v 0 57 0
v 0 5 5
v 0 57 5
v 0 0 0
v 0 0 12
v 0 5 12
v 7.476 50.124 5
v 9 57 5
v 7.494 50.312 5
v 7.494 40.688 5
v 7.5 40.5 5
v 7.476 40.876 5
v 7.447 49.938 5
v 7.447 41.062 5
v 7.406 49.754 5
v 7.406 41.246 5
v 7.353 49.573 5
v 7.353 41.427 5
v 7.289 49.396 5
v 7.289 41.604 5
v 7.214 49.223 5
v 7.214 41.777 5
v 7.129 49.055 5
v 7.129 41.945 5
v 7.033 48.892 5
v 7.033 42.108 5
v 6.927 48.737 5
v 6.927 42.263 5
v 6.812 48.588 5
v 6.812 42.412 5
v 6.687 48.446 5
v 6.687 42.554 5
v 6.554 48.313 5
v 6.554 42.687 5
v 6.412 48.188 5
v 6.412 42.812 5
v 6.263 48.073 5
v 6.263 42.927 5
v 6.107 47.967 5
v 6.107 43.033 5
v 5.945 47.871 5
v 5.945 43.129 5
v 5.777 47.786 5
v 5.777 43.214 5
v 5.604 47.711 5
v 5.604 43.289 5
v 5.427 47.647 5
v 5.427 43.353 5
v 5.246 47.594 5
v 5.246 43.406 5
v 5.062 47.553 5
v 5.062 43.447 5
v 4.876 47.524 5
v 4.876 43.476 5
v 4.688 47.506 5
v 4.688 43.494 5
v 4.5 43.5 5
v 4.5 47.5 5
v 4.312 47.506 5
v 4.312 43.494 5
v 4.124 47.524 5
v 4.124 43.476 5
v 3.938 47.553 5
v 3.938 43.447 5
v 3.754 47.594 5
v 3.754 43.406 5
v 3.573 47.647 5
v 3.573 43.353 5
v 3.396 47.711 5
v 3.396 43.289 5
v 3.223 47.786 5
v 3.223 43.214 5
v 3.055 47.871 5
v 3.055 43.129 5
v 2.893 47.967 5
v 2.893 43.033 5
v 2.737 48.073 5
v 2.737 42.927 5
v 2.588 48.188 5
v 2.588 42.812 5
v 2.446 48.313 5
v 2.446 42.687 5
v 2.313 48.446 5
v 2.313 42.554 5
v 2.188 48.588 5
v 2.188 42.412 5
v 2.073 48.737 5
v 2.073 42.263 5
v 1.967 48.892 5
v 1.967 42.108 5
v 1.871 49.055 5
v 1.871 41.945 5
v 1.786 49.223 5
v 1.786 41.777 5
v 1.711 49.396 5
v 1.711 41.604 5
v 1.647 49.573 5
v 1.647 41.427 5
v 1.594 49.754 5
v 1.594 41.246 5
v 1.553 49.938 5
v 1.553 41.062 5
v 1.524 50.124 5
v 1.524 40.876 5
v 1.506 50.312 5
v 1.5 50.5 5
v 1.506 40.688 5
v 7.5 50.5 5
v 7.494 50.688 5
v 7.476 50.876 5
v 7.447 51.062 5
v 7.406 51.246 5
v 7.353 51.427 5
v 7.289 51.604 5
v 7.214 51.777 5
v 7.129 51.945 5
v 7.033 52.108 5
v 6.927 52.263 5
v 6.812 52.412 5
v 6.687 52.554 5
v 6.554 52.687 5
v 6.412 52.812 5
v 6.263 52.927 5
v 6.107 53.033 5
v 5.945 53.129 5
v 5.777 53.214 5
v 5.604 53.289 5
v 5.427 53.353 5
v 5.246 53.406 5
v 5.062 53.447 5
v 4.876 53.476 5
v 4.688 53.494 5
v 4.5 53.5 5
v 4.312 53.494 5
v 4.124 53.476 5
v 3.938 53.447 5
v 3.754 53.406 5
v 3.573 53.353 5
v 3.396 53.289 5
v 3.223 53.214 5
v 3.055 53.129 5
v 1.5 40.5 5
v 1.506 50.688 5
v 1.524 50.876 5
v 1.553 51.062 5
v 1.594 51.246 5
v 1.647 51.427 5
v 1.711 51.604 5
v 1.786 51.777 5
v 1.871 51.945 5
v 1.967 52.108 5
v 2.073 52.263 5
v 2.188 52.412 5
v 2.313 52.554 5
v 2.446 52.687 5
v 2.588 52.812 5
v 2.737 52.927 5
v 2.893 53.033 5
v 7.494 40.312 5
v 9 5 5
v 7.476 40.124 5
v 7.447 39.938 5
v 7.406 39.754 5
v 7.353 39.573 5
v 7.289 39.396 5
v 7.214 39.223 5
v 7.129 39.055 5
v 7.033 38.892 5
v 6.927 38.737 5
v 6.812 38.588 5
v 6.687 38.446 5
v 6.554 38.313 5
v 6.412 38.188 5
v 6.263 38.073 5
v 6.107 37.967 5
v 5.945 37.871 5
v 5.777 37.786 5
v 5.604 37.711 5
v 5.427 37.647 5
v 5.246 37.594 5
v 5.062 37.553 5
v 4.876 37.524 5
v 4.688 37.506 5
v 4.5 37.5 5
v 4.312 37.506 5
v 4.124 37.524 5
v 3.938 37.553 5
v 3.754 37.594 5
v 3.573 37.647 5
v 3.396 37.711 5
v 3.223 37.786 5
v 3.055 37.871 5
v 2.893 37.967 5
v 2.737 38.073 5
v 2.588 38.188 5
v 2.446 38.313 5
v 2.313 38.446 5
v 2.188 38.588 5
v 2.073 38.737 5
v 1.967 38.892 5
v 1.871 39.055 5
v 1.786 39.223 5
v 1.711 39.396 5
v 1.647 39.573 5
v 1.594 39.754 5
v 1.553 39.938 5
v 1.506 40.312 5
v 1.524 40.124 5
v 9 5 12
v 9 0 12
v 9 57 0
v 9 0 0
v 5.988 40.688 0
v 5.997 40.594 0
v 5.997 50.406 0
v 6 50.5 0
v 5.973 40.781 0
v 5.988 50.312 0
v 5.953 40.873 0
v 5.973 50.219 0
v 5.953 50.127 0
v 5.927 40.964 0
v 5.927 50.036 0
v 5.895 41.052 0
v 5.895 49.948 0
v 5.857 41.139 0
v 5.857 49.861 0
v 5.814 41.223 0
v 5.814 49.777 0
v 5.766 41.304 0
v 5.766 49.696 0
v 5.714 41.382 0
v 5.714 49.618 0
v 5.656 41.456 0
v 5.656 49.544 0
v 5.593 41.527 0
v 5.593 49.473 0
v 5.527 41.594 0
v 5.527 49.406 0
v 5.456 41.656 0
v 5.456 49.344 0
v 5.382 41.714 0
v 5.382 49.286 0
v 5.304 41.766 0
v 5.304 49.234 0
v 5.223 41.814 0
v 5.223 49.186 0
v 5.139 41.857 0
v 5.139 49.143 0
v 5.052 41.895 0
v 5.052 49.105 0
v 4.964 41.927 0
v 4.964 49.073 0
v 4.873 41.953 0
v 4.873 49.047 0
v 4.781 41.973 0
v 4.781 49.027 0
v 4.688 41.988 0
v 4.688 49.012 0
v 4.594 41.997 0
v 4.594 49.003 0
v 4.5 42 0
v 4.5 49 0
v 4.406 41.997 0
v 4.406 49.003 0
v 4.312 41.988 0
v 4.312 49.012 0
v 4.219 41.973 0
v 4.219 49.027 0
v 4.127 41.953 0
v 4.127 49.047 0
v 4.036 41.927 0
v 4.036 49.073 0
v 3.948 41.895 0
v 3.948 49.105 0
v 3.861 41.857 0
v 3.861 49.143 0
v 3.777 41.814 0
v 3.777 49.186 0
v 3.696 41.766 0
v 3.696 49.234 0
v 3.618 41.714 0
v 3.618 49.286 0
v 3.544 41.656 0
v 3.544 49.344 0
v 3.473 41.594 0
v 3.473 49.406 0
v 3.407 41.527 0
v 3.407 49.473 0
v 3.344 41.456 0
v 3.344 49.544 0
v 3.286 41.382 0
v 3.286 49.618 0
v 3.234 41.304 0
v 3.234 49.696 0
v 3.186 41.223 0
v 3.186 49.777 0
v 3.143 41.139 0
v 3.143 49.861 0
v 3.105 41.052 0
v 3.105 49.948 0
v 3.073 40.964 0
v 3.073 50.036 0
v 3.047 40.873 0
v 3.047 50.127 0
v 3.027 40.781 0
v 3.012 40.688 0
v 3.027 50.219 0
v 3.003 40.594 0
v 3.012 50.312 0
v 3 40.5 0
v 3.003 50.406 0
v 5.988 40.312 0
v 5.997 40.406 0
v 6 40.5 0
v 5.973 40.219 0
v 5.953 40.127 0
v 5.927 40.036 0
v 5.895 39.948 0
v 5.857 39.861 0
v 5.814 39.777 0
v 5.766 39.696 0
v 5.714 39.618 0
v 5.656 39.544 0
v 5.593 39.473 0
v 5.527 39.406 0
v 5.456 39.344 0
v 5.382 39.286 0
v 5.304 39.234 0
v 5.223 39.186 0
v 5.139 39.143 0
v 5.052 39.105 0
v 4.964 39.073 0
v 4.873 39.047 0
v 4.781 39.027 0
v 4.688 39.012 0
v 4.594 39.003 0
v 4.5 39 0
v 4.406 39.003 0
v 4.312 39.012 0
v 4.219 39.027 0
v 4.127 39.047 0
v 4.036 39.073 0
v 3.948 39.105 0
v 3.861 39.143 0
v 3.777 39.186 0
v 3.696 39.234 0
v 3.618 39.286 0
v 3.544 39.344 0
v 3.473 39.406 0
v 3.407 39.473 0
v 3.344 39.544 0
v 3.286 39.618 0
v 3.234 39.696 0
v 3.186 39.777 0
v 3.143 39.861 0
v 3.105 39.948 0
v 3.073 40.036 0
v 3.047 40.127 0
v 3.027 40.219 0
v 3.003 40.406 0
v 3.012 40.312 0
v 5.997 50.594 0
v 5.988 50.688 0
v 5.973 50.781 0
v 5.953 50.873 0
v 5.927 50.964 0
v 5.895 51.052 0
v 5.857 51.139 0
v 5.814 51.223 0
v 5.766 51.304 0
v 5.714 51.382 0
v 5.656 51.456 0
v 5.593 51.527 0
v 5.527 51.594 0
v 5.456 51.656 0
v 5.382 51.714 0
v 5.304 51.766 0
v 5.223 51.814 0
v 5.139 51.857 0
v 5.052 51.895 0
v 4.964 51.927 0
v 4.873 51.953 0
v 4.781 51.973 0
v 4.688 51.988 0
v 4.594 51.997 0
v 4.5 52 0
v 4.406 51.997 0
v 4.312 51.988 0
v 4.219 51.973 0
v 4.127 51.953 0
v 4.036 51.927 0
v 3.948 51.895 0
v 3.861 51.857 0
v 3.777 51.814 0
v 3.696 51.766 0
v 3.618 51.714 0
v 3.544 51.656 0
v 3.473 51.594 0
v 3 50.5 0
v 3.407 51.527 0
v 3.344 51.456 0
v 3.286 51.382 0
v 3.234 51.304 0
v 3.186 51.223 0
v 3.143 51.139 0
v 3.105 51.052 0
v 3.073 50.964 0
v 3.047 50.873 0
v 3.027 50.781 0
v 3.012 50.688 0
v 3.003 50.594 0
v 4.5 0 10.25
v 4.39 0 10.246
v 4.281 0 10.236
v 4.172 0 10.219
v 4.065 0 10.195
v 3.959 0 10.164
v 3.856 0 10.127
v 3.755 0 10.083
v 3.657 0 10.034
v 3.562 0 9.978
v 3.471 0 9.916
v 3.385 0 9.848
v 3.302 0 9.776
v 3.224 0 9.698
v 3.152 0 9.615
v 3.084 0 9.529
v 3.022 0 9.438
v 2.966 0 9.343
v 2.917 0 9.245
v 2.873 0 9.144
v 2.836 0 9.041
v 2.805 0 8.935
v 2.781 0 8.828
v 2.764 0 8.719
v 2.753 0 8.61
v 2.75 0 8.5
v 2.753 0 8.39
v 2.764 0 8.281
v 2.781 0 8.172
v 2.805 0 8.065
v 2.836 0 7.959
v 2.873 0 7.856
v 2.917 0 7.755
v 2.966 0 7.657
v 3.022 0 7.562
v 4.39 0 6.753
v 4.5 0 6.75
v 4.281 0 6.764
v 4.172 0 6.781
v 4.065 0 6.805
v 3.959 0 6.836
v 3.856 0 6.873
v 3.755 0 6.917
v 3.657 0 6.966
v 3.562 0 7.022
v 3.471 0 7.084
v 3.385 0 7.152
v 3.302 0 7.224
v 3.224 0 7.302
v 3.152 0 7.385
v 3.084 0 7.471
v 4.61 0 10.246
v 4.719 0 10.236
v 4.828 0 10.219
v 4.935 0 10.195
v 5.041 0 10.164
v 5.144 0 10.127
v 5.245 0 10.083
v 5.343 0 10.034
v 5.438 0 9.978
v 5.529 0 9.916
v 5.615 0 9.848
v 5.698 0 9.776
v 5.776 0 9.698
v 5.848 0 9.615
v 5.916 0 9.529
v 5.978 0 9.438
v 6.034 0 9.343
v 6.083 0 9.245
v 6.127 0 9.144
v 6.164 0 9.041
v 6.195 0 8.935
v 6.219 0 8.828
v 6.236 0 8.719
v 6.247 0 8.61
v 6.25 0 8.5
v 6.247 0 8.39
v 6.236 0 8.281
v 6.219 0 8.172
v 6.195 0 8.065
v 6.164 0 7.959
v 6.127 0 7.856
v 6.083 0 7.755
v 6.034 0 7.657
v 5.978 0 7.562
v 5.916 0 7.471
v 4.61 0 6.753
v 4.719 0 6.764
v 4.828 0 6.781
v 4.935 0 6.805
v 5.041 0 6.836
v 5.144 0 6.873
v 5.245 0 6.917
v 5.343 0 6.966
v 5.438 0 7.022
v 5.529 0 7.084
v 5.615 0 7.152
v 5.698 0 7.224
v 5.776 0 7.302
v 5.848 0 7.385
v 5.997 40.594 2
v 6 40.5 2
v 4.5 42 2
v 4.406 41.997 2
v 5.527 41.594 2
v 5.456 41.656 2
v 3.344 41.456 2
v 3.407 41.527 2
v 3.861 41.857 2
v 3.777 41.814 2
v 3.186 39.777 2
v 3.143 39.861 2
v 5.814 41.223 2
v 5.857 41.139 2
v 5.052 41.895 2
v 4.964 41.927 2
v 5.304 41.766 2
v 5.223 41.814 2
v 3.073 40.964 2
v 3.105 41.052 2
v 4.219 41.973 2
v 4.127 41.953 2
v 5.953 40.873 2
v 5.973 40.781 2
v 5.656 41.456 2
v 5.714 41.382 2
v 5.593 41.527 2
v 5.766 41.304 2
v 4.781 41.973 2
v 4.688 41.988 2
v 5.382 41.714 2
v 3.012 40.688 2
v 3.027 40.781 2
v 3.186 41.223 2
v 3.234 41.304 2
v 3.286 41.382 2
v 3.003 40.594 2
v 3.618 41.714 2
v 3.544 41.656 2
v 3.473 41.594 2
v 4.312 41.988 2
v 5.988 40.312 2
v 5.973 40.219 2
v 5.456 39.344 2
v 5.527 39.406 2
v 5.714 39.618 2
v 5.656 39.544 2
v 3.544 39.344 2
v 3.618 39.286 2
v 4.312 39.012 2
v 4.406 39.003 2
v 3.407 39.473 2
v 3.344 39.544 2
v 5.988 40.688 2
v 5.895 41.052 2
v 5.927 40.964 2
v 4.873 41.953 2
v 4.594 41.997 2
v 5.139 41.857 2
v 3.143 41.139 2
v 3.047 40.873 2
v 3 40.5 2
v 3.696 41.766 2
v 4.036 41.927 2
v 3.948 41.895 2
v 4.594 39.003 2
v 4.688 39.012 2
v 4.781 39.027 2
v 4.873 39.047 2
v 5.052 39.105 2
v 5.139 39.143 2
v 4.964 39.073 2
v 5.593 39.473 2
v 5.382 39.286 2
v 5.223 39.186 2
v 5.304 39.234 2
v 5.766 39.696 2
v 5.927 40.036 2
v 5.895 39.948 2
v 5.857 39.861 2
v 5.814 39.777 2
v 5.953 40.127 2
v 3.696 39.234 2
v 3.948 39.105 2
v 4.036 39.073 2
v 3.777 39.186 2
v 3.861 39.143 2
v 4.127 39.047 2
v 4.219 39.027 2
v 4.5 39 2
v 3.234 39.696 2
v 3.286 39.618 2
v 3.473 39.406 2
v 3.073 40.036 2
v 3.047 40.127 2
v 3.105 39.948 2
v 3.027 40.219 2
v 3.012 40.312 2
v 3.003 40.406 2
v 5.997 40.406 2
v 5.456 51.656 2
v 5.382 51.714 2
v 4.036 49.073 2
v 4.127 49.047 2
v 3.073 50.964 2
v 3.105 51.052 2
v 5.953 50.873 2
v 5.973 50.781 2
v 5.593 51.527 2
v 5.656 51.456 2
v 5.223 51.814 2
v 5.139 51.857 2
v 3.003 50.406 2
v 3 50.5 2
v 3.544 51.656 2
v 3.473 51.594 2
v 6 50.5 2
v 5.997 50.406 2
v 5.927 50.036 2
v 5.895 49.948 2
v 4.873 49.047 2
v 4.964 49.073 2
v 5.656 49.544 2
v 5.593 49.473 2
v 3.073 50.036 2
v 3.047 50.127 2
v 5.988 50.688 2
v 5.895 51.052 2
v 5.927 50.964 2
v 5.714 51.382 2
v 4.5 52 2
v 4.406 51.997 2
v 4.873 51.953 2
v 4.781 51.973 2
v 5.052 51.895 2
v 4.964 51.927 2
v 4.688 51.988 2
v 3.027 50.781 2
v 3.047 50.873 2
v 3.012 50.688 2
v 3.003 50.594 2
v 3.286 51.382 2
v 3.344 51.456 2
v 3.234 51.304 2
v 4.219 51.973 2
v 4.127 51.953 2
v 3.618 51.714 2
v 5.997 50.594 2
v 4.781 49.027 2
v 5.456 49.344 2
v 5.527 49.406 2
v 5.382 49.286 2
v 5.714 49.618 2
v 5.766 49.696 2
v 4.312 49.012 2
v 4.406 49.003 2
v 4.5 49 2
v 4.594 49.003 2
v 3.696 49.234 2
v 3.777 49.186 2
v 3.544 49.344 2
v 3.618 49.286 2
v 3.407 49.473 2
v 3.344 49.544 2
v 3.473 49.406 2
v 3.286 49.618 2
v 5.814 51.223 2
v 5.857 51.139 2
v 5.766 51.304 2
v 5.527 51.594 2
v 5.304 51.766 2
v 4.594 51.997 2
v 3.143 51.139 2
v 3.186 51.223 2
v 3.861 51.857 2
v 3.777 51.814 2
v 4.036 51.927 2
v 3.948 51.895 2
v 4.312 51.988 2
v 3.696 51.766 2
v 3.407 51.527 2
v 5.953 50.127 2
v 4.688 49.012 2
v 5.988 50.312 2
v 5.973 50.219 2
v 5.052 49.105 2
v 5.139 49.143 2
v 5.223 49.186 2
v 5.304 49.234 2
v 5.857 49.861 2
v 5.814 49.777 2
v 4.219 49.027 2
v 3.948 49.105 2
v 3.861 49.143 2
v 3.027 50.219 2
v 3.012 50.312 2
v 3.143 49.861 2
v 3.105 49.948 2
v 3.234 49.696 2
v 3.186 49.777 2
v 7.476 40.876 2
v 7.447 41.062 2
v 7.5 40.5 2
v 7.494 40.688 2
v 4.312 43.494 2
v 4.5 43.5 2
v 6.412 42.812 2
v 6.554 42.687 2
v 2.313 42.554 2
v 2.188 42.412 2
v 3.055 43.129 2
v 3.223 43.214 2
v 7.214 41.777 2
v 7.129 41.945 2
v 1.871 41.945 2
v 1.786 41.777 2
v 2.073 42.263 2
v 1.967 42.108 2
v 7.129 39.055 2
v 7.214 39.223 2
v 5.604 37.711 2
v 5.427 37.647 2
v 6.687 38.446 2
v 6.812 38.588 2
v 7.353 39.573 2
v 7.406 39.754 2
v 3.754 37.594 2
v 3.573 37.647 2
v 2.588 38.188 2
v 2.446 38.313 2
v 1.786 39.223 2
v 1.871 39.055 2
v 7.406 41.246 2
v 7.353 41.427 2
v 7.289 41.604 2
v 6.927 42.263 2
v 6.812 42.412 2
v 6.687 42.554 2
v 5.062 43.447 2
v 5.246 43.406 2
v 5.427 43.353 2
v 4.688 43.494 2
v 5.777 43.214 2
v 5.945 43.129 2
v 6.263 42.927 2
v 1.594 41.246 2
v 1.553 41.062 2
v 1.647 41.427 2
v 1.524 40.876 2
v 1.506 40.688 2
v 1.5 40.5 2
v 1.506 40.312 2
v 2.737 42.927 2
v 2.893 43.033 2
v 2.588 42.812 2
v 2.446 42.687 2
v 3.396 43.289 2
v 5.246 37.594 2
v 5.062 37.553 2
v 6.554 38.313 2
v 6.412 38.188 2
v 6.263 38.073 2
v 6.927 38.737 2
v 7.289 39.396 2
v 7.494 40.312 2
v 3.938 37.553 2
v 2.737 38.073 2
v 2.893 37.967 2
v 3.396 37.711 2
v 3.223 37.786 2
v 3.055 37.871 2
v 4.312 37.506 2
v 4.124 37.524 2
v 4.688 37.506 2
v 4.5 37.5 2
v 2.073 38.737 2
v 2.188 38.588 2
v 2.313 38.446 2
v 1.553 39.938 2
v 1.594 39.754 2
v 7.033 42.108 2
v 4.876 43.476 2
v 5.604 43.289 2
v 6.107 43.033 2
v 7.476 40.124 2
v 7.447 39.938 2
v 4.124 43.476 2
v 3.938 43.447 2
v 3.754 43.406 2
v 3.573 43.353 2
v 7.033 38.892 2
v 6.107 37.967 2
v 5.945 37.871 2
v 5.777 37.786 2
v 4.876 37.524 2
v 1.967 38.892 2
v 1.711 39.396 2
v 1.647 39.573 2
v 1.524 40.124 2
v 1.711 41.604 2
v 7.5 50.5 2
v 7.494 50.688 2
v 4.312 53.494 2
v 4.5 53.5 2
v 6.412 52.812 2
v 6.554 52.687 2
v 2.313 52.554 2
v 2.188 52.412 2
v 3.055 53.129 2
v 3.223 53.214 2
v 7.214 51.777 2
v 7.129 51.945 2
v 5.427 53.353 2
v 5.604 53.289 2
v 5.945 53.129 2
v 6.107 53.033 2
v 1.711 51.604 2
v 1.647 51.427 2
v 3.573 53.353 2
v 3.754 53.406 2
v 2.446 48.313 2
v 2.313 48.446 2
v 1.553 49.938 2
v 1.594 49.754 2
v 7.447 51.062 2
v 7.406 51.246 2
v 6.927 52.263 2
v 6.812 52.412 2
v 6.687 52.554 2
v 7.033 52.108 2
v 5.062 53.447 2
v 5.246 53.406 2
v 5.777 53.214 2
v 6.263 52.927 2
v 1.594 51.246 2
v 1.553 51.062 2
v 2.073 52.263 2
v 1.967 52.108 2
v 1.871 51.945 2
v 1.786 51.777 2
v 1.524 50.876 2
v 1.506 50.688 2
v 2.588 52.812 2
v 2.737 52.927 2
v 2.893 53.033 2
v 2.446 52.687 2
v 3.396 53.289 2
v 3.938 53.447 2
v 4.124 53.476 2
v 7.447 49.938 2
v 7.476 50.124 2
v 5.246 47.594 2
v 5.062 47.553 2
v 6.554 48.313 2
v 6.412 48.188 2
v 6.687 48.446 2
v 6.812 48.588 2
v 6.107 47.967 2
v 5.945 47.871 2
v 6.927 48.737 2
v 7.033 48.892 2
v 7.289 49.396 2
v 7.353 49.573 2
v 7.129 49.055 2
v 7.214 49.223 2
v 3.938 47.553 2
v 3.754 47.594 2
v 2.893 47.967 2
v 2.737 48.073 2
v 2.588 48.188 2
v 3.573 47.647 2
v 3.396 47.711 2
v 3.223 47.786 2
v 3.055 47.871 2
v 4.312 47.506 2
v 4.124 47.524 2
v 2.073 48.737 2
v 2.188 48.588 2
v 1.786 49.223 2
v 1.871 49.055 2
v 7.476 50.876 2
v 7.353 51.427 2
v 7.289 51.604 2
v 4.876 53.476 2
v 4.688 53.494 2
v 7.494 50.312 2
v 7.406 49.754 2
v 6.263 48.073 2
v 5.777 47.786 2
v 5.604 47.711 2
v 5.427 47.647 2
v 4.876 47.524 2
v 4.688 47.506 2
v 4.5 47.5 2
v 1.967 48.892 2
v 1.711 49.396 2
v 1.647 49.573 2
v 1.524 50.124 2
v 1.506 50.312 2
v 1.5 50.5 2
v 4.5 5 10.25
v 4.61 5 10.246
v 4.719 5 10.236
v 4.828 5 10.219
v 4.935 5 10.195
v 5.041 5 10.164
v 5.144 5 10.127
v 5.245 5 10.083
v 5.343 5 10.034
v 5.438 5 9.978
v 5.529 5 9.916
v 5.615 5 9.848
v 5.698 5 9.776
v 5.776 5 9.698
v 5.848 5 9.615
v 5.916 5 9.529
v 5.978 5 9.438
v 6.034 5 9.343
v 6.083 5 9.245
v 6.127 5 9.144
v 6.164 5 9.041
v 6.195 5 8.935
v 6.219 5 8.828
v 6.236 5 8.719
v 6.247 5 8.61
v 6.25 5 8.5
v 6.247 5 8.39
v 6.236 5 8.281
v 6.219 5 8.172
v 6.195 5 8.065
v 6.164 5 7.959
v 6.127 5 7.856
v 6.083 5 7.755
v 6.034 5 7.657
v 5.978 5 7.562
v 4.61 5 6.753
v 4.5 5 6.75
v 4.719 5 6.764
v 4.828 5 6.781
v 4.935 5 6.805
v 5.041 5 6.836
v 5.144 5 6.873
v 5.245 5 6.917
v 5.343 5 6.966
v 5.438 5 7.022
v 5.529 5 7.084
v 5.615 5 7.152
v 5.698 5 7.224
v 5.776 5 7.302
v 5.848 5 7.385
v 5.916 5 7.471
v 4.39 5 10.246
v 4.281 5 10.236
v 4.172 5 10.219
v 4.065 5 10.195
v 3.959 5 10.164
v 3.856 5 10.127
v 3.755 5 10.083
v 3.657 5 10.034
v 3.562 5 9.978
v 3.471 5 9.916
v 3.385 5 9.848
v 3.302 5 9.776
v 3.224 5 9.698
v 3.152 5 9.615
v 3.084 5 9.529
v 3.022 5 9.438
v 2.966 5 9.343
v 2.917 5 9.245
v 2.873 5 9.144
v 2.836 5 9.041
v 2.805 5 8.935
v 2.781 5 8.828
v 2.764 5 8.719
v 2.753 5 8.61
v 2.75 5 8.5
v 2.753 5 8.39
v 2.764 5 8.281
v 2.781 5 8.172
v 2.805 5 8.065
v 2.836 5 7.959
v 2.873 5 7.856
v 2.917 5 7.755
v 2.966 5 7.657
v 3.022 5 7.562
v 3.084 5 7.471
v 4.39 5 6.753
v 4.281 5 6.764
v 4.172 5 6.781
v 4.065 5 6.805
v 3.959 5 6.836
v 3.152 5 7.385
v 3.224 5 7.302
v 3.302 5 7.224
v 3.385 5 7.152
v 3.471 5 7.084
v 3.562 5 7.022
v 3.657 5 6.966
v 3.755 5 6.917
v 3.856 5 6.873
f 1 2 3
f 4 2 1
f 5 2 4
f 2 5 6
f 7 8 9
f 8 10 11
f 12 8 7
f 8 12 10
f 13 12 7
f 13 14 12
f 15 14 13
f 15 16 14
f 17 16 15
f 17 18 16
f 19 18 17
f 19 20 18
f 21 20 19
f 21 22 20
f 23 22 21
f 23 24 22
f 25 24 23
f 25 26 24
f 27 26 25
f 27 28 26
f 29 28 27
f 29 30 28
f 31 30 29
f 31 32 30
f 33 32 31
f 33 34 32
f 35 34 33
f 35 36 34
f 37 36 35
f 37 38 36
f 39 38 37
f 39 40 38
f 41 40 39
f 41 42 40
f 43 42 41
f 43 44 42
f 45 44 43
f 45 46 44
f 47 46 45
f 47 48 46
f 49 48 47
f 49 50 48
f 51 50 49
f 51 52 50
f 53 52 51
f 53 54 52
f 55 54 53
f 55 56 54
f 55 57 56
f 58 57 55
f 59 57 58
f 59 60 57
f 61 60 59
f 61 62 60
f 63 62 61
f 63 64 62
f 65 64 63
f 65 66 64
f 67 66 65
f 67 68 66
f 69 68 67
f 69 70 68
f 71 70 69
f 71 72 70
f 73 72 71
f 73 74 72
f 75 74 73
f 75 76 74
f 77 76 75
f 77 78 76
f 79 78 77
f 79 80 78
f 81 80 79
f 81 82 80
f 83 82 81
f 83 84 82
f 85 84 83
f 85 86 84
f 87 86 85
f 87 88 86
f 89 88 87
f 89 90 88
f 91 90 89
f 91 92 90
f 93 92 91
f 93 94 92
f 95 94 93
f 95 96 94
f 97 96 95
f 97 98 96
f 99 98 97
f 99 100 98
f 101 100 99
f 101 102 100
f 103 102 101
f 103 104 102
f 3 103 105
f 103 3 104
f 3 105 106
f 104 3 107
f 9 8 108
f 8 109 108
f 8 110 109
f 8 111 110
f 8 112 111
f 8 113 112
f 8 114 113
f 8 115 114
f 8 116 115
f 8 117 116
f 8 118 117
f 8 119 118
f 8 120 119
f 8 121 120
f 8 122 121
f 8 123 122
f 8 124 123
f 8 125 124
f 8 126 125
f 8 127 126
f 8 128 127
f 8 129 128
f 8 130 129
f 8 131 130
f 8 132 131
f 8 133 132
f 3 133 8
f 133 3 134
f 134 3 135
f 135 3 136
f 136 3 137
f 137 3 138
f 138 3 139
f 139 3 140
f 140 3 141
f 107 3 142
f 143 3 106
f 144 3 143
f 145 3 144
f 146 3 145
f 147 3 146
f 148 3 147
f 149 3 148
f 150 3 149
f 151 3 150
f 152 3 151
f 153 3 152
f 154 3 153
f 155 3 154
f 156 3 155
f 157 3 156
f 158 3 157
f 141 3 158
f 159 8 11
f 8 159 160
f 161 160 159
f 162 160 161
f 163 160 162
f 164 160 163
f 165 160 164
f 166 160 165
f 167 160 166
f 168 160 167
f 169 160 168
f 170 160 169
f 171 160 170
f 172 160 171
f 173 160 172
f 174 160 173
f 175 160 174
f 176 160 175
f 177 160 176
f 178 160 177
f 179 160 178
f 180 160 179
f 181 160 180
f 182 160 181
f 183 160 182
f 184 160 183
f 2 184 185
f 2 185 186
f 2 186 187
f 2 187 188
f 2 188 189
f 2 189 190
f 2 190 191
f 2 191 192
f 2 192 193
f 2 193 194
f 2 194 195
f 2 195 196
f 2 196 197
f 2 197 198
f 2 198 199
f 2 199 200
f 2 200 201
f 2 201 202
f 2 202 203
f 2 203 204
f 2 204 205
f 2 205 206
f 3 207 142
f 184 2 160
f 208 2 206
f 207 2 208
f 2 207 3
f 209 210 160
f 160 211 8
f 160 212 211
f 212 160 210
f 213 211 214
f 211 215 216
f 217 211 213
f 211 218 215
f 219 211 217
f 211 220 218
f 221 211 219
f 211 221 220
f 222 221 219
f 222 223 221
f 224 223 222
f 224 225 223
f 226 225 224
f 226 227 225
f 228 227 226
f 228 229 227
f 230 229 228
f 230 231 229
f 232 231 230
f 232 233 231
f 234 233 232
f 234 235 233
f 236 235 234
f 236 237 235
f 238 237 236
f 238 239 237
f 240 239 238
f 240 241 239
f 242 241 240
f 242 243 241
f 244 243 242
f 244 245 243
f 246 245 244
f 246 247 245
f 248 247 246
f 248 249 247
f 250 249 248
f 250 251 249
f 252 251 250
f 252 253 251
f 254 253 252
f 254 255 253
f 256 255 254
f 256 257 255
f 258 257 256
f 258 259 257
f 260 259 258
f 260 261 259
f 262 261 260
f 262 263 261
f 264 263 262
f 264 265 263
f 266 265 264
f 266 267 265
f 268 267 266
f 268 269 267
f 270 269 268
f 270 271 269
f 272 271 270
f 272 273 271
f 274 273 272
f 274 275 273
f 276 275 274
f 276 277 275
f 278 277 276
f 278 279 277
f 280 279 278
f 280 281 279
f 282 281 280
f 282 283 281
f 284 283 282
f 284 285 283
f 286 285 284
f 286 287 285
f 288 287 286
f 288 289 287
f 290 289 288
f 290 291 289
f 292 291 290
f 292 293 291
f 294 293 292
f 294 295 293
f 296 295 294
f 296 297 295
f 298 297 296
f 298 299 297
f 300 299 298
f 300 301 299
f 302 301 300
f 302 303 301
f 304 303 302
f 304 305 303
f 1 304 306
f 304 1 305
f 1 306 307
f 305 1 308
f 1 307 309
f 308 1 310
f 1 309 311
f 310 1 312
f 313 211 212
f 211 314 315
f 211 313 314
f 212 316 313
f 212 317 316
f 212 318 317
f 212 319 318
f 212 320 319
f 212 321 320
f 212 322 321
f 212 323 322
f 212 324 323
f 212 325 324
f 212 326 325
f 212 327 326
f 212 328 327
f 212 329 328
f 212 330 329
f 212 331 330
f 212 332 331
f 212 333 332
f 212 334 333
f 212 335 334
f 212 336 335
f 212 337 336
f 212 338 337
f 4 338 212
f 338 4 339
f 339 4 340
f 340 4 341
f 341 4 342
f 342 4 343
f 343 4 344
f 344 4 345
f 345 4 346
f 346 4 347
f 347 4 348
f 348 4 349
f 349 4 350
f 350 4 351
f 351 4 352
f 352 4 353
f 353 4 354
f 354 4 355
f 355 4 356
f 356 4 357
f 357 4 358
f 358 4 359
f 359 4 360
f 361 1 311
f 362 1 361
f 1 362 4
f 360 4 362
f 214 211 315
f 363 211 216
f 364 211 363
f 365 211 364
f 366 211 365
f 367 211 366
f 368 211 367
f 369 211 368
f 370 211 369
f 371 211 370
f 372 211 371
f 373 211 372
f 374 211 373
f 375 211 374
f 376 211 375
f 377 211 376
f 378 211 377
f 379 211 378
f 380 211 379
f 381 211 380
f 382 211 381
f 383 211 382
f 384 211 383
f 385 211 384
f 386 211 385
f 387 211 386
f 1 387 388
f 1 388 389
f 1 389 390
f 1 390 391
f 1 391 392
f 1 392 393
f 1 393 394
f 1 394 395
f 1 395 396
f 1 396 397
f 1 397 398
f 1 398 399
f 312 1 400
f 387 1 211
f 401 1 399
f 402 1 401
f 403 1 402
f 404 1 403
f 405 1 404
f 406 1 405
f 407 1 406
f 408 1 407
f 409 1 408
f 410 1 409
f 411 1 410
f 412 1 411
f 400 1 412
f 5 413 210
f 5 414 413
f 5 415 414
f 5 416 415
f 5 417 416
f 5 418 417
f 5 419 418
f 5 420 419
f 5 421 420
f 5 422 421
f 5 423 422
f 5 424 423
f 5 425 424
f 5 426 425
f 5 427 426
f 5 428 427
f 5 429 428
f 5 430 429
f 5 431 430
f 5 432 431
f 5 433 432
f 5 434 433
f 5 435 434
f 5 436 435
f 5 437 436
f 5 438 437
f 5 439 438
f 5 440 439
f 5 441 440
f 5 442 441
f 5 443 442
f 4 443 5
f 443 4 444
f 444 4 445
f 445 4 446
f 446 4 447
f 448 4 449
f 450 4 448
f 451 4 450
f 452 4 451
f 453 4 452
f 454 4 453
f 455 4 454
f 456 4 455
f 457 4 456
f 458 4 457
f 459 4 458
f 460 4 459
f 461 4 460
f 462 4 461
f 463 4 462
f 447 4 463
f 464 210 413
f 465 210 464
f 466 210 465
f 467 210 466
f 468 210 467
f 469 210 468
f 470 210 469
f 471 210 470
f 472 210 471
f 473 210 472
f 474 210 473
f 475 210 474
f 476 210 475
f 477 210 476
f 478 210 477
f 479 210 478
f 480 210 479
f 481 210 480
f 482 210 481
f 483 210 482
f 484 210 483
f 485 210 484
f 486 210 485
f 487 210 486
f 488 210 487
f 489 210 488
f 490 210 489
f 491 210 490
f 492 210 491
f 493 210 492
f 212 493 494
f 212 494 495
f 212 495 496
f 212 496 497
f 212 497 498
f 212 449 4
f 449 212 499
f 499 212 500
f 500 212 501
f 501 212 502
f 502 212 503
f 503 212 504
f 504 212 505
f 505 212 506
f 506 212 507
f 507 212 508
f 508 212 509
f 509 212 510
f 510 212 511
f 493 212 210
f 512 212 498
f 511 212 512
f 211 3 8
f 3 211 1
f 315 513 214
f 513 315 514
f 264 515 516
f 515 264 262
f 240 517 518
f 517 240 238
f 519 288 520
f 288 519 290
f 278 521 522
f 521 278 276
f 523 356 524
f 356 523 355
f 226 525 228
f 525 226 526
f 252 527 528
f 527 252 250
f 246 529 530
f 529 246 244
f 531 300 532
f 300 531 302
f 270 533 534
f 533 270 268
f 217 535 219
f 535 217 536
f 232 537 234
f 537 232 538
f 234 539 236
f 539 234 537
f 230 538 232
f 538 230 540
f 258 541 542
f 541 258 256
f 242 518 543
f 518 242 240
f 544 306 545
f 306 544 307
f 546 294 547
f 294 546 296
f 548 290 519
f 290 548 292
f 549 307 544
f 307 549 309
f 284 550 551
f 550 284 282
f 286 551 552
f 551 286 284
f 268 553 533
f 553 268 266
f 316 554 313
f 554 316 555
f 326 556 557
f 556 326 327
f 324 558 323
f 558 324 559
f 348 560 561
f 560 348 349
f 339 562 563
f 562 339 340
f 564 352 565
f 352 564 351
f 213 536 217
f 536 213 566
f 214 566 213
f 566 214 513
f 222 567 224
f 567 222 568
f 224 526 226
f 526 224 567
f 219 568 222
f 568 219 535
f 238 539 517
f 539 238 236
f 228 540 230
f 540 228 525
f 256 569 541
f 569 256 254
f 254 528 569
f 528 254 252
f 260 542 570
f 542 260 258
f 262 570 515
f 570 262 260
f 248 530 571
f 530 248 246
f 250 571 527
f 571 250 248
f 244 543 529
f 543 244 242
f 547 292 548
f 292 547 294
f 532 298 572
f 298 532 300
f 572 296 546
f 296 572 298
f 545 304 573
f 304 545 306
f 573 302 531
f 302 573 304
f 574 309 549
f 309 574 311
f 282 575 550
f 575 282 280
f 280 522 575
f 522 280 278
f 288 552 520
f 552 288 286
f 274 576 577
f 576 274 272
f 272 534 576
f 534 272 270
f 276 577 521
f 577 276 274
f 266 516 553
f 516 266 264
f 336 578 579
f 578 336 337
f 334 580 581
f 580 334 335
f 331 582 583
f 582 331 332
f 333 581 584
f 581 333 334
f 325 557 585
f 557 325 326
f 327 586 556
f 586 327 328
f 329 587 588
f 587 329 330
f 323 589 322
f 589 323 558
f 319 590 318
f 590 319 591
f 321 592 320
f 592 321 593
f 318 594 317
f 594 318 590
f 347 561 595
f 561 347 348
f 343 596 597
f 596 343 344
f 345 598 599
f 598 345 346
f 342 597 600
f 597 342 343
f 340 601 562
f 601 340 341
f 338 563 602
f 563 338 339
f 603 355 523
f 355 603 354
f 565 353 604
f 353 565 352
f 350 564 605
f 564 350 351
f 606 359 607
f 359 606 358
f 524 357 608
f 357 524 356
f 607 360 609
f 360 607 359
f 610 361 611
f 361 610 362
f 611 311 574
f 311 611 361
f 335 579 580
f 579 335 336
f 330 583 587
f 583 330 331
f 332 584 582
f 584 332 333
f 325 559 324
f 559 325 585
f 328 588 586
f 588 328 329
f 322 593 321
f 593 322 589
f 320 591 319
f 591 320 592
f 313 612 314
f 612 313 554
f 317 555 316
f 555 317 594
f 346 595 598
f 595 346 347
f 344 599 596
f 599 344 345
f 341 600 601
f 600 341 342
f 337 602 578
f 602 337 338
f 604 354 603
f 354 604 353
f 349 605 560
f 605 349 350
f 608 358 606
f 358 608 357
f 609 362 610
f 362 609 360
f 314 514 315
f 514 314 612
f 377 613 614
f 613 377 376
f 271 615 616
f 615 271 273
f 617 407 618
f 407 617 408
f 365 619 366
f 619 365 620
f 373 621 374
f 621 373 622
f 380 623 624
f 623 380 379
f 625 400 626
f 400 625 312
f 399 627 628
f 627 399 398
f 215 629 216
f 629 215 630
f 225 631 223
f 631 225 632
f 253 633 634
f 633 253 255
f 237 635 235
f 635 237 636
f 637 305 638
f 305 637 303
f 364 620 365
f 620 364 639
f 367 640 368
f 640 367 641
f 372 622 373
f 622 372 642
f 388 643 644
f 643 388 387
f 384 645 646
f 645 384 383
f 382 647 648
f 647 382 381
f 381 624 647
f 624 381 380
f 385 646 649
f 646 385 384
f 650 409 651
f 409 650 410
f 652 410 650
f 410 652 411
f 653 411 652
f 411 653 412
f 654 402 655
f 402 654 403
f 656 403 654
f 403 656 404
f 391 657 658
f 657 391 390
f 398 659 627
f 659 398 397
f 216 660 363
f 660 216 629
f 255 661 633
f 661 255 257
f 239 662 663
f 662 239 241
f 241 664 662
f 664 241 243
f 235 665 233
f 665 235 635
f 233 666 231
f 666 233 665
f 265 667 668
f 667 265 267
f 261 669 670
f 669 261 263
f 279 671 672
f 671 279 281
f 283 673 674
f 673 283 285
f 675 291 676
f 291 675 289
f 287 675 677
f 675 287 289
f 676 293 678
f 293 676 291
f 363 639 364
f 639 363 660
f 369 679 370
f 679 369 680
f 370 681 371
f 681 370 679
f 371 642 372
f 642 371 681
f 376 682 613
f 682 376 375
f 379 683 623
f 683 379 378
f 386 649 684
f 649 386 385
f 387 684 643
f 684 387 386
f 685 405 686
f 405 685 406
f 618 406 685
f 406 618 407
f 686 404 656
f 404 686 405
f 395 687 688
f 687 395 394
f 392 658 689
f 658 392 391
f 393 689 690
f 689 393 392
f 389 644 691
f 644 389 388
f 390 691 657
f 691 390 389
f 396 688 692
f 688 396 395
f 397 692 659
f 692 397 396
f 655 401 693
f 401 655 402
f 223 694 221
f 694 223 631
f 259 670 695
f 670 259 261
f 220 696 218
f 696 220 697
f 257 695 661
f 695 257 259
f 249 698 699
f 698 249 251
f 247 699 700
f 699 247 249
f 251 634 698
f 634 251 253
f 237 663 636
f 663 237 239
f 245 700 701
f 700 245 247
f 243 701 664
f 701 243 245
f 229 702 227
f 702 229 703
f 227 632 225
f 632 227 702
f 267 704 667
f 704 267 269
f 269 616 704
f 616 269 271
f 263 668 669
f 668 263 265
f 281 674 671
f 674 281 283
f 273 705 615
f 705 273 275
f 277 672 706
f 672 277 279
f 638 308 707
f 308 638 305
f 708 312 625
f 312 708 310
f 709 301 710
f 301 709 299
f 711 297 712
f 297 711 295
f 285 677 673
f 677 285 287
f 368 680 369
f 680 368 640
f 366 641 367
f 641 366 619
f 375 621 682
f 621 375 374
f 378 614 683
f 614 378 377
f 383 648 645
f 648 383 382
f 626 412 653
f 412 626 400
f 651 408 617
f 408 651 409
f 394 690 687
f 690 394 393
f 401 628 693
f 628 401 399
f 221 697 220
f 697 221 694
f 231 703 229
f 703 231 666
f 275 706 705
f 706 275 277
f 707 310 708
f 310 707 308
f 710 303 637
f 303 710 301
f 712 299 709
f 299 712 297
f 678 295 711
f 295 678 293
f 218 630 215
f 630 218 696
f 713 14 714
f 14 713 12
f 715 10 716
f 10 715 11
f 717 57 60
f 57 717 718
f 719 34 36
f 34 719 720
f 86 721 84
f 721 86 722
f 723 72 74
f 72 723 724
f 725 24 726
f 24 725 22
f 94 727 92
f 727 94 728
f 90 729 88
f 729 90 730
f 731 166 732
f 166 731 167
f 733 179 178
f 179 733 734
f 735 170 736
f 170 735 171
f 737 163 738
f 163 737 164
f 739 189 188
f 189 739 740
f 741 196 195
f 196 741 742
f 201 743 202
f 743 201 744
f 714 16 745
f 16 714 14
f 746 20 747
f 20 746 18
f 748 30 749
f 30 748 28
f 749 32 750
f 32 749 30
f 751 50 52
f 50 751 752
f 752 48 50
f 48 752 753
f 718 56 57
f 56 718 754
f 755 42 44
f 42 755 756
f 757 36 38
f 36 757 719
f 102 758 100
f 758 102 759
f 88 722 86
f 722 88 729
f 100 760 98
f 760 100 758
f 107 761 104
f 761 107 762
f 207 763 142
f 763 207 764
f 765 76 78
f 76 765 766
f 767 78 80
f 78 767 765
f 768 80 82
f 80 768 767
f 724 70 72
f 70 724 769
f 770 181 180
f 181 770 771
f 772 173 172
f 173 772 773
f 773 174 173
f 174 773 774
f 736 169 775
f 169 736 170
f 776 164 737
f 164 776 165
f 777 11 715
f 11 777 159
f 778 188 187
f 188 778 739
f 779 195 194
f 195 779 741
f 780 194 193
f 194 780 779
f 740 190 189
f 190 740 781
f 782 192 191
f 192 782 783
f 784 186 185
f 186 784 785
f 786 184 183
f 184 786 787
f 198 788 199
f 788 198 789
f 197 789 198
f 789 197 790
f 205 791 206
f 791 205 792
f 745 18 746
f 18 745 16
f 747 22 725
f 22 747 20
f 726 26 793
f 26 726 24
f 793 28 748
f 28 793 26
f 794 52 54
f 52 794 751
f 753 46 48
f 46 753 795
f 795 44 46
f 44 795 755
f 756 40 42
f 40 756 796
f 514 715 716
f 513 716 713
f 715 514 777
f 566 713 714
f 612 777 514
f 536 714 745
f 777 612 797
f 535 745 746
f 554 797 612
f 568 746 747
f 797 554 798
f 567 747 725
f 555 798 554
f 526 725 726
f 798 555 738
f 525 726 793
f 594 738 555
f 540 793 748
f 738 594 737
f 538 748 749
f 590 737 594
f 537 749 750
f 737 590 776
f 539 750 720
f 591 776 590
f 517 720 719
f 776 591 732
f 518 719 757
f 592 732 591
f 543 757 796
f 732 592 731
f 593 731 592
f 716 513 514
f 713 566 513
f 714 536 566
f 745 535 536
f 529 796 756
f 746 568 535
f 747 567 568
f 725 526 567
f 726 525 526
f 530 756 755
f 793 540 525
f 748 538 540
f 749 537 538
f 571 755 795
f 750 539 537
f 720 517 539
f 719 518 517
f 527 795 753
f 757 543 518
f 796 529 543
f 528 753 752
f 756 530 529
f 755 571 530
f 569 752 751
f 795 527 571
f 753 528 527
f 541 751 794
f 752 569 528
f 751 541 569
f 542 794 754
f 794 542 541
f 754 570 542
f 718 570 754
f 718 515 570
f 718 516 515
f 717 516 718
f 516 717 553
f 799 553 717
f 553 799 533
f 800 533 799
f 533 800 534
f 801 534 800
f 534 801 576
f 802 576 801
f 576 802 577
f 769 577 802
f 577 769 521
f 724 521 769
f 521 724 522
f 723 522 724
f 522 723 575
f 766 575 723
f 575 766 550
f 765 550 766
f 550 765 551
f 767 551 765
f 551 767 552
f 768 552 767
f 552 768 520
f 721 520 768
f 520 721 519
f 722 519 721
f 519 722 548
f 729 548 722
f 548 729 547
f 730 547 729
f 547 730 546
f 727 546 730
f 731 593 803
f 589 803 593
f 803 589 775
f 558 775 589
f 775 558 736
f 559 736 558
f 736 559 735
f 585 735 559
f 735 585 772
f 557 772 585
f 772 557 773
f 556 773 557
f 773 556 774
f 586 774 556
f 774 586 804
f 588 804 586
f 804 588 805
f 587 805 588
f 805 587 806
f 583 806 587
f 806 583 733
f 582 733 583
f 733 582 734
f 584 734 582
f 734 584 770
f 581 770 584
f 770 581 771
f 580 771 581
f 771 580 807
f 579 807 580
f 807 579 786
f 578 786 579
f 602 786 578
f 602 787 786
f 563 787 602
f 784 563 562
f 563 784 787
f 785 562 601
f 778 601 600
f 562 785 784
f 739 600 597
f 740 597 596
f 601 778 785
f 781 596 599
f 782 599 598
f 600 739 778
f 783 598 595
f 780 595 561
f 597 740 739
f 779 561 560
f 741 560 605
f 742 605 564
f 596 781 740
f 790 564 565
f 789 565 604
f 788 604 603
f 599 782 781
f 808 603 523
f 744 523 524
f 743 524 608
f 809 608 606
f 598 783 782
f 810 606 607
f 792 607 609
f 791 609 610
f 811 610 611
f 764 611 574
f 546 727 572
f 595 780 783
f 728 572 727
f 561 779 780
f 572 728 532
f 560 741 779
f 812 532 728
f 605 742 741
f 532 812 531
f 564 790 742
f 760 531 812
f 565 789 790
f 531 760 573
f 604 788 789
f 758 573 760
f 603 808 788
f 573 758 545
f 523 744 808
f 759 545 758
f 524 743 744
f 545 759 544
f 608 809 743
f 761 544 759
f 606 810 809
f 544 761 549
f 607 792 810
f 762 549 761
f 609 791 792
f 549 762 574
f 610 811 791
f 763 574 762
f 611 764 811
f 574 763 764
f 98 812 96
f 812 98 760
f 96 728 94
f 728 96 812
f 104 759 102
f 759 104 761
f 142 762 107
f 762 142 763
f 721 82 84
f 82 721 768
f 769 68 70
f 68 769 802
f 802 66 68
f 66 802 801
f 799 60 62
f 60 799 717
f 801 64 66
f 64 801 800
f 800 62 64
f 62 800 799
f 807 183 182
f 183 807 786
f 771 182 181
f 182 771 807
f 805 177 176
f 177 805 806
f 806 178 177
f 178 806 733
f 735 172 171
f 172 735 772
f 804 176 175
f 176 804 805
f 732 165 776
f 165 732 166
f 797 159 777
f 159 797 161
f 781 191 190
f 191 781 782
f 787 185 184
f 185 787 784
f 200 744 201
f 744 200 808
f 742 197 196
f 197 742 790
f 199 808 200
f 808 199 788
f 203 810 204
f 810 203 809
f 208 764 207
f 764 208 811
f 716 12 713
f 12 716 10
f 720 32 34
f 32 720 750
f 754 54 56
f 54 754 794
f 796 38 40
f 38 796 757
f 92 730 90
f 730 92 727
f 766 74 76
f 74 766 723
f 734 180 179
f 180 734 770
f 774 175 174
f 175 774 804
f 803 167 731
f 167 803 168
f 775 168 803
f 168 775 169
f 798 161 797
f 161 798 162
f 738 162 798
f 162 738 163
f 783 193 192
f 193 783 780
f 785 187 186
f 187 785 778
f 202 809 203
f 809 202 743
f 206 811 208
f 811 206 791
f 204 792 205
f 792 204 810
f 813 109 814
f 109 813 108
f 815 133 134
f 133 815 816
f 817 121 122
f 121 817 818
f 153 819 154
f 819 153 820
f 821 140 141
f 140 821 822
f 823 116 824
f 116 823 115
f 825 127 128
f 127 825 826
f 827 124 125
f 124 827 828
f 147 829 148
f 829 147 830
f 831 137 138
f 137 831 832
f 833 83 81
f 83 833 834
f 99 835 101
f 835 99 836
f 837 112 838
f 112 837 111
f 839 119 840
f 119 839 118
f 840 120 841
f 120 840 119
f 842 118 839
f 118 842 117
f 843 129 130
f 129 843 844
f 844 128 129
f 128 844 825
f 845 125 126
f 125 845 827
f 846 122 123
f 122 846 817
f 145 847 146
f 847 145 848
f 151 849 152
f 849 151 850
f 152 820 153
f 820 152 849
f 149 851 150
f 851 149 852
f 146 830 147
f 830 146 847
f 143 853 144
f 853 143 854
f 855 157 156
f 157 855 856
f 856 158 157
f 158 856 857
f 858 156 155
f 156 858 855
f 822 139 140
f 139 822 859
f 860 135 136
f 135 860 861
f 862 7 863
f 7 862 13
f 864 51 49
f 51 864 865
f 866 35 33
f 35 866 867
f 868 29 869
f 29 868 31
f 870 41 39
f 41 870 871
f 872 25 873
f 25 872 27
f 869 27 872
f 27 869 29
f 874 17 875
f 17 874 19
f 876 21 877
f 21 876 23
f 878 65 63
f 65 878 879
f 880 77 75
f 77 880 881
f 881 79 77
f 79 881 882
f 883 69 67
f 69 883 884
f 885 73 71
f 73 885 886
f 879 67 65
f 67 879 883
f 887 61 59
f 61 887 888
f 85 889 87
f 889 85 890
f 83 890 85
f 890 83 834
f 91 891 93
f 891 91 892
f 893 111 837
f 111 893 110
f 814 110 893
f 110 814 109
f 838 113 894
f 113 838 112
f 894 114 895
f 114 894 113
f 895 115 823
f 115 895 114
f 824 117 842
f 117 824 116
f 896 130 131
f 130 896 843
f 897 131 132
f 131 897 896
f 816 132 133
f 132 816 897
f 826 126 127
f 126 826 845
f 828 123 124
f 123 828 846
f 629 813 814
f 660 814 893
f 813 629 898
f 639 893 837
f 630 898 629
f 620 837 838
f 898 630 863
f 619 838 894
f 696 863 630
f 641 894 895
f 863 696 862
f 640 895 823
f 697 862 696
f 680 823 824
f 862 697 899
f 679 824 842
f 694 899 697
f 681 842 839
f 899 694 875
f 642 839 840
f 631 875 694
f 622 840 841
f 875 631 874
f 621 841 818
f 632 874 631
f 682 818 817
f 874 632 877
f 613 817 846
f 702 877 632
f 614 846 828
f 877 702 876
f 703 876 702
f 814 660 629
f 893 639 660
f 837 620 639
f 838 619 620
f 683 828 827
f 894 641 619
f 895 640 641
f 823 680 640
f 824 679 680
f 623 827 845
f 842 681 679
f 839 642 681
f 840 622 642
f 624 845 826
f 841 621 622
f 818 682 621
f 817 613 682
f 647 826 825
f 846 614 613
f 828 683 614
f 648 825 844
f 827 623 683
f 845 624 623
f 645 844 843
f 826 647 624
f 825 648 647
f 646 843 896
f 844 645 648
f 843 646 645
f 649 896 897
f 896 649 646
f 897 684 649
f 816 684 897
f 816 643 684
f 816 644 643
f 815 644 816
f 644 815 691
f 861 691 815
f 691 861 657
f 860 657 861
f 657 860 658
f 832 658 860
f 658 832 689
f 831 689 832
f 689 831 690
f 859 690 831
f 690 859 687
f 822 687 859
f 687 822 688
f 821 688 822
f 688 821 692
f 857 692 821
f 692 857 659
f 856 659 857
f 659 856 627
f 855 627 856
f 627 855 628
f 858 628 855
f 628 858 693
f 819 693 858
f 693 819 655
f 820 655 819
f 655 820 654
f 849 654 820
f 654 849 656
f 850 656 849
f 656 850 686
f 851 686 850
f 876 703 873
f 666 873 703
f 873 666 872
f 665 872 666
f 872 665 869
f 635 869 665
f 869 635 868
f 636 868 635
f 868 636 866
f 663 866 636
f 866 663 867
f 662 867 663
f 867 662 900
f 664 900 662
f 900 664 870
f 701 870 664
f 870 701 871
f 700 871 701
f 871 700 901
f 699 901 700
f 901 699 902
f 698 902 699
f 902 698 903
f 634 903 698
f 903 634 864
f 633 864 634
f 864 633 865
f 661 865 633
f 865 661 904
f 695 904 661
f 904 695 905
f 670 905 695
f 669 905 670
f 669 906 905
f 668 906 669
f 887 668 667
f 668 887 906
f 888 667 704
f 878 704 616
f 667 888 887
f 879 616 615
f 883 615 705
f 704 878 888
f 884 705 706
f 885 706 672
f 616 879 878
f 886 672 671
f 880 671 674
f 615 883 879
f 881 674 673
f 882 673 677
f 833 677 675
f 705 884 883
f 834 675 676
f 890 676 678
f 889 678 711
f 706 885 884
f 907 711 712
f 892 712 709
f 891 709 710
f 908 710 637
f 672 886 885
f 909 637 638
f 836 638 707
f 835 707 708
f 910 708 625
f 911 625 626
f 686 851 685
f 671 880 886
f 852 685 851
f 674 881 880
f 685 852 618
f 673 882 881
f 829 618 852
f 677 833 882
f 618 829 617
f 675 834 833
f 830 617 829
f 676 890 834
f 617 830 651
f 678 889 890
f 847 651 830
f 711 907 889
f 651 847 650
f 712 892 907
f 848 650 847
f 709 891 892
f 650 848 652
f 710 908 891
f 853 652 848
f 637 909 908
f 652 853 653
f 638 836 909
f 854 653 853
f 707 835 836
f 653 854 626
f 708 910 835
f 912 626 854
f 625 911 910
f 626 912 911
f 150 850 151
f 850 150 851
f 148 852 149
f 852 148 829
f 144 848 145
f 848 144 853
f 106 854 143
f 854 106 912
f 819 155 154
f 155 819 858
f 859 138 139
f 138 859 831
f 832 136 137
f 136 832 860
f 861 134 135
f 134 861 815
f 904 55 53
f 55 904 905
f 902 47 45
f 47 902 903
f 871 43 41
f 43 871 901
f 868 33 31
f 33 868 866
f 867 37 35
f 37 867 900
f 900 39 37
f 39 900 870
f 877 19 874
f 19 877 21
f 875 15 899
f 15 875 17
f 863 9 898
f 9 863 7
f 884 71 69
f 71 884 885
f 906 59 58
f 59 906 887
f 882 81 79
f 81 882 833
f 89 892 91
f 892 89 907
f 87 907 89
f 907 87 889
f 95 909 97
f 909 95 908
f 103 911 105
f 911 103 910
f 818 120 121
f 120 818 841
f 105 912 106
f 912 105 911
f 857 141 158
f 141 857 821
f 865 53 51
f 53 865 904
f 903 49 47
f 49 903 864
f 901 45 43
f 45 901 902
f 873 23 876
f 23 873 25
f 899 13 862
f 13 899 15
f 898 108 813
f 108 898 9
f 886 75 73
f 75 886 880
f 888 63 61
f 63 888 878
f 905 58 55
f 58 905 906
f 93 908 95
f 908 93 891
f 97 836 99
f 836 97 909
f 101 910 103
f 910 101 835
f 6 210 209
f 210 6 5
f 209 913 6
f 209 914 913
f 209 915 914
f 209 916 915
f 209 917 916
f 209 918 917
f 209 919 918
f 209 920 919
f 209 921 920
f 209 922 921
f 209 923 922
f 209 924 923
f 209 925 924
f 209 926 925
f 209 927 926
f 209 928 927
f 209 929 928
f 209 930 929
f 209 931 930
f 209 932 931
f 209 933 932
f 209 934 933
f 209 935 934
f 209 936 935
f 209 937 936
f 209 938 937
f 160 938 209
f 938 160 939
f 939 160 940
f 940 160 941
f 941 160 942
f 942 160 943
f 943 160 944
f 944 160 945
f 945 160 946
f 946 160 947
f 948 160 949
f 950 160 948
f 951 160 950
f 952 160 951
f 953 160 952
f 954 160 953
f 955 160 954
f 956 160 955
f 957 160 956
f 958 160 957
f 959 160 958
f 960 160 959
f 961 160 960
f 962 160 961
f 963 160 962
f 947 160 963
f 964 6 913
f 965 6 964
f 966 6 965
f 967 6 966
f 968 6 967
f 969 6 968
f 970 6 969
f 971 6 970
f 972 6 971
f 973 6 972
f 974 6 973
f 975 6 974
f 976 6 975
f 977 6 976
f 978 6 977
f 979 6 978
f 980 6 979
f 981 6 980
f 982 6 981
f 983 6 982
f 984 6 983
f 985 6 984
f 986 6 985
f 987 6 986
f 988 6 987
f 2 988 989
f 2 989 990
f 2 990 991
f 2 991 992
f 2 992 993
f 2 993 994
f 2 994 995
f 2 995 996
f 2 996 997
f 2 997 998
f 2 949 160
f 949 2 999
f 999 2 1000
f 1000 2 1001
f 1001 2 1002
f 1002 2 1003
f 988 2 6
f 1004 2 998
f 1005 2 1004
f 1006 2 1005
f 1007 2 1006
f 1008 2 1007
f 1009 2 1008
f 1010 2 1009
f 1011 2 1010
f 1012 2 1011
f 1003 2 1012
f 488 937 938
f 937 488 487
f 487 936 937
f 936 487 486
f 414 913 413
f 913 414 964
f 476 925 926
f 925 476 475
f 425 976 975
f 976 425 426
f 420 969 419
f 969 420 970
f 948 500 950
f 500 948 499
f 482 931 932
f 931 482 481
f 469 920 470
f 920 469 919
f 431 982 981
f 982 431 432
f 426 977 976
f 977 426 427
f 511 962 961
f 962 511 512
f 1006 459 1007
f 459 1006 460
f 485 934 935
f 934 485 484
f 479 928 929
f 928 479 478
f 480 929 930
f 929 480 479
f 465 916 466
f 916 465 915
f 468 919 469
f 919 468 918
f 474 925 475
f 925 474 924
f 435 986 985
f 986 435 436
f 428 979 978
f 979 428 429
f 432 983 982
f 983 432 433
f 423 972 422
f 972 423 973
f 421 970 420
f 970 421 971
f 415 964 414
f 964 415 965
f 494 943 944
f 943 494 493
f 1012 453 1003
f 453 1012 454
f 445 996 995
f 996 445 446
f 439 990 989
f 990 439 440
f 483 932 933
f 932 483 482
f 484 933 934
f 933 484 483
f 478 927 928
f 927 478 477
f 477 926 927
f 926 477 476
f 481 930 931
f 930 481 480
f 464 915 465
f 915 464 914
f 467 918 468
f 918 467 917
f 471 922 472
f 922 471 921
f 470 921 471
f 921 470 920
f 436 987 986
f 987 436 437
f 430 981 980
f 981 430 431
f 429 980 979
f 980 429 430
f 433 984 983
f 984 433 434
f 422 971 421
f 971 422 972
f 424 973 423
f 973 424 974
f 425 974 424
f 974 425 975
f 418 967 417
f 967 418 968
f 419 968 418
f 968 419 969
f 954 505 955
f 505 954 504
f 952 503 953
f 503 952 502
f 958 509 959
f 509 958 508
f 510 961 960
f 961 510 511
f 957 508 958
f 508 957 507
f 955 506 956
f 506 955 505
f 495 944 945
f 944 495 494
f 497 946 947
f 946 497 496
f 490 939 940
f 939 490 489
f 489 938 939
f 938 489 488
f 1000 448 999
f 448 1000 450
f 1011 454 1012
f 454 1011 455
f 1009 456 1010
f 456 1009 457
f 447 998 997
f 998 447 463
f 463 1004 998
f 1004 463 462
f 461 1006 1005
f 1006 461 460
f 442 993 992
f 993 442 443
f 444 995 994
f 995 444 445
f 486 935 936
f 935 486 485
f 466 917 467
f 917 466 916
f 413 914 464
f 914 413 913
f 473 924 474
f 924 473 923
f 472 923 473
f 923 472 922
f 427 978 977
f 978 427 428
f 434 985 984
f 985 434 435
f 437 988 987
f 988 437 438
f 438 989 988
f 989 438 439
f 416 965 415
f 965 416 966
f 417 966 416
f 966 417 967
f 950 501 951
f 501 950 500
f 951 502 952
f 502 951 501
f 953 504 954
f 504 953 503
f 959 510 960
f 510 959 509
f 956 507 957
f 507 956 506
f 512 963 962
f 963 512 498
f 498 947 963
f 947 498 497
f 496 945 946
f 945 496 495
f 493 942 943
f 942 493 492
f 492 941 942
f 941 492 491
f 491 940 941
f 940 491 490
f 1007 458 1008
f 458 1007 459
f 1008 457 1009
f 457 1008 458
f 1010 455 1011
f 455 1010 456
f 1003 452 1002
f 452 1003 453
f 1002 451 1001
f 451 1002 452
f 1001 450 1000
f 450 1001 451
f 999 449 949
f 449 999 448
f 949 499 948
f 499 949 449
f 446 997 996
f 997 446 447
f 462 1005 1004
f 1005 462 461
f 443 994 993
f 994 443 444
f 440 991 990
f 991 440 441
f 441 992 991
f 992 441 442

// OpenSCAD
$fn=100;
union() {
    difference() {
        cube([9, 57, 5], false);
        
        translate([4.5, 40.5, -1]) cylinder(8, d1=3, d2=3);
        translate([4.5, 50.5, -1]) cylinder(8, d1=3, d2=3);
        
        translate([4.5, 40.5, 2]) cylinder(4, d1=6, d2=6);
        translate([4.5, 50.5, 2]) cylinder(4, d1=6, d2=6);
    }
    difference() {
        cube([9, 5, 12], false);
        translate([4.5, 7, 8.5]) rotate([90, 0, 0]) cylinder(20, d1=3.5, d2=3.5);
    }
}
